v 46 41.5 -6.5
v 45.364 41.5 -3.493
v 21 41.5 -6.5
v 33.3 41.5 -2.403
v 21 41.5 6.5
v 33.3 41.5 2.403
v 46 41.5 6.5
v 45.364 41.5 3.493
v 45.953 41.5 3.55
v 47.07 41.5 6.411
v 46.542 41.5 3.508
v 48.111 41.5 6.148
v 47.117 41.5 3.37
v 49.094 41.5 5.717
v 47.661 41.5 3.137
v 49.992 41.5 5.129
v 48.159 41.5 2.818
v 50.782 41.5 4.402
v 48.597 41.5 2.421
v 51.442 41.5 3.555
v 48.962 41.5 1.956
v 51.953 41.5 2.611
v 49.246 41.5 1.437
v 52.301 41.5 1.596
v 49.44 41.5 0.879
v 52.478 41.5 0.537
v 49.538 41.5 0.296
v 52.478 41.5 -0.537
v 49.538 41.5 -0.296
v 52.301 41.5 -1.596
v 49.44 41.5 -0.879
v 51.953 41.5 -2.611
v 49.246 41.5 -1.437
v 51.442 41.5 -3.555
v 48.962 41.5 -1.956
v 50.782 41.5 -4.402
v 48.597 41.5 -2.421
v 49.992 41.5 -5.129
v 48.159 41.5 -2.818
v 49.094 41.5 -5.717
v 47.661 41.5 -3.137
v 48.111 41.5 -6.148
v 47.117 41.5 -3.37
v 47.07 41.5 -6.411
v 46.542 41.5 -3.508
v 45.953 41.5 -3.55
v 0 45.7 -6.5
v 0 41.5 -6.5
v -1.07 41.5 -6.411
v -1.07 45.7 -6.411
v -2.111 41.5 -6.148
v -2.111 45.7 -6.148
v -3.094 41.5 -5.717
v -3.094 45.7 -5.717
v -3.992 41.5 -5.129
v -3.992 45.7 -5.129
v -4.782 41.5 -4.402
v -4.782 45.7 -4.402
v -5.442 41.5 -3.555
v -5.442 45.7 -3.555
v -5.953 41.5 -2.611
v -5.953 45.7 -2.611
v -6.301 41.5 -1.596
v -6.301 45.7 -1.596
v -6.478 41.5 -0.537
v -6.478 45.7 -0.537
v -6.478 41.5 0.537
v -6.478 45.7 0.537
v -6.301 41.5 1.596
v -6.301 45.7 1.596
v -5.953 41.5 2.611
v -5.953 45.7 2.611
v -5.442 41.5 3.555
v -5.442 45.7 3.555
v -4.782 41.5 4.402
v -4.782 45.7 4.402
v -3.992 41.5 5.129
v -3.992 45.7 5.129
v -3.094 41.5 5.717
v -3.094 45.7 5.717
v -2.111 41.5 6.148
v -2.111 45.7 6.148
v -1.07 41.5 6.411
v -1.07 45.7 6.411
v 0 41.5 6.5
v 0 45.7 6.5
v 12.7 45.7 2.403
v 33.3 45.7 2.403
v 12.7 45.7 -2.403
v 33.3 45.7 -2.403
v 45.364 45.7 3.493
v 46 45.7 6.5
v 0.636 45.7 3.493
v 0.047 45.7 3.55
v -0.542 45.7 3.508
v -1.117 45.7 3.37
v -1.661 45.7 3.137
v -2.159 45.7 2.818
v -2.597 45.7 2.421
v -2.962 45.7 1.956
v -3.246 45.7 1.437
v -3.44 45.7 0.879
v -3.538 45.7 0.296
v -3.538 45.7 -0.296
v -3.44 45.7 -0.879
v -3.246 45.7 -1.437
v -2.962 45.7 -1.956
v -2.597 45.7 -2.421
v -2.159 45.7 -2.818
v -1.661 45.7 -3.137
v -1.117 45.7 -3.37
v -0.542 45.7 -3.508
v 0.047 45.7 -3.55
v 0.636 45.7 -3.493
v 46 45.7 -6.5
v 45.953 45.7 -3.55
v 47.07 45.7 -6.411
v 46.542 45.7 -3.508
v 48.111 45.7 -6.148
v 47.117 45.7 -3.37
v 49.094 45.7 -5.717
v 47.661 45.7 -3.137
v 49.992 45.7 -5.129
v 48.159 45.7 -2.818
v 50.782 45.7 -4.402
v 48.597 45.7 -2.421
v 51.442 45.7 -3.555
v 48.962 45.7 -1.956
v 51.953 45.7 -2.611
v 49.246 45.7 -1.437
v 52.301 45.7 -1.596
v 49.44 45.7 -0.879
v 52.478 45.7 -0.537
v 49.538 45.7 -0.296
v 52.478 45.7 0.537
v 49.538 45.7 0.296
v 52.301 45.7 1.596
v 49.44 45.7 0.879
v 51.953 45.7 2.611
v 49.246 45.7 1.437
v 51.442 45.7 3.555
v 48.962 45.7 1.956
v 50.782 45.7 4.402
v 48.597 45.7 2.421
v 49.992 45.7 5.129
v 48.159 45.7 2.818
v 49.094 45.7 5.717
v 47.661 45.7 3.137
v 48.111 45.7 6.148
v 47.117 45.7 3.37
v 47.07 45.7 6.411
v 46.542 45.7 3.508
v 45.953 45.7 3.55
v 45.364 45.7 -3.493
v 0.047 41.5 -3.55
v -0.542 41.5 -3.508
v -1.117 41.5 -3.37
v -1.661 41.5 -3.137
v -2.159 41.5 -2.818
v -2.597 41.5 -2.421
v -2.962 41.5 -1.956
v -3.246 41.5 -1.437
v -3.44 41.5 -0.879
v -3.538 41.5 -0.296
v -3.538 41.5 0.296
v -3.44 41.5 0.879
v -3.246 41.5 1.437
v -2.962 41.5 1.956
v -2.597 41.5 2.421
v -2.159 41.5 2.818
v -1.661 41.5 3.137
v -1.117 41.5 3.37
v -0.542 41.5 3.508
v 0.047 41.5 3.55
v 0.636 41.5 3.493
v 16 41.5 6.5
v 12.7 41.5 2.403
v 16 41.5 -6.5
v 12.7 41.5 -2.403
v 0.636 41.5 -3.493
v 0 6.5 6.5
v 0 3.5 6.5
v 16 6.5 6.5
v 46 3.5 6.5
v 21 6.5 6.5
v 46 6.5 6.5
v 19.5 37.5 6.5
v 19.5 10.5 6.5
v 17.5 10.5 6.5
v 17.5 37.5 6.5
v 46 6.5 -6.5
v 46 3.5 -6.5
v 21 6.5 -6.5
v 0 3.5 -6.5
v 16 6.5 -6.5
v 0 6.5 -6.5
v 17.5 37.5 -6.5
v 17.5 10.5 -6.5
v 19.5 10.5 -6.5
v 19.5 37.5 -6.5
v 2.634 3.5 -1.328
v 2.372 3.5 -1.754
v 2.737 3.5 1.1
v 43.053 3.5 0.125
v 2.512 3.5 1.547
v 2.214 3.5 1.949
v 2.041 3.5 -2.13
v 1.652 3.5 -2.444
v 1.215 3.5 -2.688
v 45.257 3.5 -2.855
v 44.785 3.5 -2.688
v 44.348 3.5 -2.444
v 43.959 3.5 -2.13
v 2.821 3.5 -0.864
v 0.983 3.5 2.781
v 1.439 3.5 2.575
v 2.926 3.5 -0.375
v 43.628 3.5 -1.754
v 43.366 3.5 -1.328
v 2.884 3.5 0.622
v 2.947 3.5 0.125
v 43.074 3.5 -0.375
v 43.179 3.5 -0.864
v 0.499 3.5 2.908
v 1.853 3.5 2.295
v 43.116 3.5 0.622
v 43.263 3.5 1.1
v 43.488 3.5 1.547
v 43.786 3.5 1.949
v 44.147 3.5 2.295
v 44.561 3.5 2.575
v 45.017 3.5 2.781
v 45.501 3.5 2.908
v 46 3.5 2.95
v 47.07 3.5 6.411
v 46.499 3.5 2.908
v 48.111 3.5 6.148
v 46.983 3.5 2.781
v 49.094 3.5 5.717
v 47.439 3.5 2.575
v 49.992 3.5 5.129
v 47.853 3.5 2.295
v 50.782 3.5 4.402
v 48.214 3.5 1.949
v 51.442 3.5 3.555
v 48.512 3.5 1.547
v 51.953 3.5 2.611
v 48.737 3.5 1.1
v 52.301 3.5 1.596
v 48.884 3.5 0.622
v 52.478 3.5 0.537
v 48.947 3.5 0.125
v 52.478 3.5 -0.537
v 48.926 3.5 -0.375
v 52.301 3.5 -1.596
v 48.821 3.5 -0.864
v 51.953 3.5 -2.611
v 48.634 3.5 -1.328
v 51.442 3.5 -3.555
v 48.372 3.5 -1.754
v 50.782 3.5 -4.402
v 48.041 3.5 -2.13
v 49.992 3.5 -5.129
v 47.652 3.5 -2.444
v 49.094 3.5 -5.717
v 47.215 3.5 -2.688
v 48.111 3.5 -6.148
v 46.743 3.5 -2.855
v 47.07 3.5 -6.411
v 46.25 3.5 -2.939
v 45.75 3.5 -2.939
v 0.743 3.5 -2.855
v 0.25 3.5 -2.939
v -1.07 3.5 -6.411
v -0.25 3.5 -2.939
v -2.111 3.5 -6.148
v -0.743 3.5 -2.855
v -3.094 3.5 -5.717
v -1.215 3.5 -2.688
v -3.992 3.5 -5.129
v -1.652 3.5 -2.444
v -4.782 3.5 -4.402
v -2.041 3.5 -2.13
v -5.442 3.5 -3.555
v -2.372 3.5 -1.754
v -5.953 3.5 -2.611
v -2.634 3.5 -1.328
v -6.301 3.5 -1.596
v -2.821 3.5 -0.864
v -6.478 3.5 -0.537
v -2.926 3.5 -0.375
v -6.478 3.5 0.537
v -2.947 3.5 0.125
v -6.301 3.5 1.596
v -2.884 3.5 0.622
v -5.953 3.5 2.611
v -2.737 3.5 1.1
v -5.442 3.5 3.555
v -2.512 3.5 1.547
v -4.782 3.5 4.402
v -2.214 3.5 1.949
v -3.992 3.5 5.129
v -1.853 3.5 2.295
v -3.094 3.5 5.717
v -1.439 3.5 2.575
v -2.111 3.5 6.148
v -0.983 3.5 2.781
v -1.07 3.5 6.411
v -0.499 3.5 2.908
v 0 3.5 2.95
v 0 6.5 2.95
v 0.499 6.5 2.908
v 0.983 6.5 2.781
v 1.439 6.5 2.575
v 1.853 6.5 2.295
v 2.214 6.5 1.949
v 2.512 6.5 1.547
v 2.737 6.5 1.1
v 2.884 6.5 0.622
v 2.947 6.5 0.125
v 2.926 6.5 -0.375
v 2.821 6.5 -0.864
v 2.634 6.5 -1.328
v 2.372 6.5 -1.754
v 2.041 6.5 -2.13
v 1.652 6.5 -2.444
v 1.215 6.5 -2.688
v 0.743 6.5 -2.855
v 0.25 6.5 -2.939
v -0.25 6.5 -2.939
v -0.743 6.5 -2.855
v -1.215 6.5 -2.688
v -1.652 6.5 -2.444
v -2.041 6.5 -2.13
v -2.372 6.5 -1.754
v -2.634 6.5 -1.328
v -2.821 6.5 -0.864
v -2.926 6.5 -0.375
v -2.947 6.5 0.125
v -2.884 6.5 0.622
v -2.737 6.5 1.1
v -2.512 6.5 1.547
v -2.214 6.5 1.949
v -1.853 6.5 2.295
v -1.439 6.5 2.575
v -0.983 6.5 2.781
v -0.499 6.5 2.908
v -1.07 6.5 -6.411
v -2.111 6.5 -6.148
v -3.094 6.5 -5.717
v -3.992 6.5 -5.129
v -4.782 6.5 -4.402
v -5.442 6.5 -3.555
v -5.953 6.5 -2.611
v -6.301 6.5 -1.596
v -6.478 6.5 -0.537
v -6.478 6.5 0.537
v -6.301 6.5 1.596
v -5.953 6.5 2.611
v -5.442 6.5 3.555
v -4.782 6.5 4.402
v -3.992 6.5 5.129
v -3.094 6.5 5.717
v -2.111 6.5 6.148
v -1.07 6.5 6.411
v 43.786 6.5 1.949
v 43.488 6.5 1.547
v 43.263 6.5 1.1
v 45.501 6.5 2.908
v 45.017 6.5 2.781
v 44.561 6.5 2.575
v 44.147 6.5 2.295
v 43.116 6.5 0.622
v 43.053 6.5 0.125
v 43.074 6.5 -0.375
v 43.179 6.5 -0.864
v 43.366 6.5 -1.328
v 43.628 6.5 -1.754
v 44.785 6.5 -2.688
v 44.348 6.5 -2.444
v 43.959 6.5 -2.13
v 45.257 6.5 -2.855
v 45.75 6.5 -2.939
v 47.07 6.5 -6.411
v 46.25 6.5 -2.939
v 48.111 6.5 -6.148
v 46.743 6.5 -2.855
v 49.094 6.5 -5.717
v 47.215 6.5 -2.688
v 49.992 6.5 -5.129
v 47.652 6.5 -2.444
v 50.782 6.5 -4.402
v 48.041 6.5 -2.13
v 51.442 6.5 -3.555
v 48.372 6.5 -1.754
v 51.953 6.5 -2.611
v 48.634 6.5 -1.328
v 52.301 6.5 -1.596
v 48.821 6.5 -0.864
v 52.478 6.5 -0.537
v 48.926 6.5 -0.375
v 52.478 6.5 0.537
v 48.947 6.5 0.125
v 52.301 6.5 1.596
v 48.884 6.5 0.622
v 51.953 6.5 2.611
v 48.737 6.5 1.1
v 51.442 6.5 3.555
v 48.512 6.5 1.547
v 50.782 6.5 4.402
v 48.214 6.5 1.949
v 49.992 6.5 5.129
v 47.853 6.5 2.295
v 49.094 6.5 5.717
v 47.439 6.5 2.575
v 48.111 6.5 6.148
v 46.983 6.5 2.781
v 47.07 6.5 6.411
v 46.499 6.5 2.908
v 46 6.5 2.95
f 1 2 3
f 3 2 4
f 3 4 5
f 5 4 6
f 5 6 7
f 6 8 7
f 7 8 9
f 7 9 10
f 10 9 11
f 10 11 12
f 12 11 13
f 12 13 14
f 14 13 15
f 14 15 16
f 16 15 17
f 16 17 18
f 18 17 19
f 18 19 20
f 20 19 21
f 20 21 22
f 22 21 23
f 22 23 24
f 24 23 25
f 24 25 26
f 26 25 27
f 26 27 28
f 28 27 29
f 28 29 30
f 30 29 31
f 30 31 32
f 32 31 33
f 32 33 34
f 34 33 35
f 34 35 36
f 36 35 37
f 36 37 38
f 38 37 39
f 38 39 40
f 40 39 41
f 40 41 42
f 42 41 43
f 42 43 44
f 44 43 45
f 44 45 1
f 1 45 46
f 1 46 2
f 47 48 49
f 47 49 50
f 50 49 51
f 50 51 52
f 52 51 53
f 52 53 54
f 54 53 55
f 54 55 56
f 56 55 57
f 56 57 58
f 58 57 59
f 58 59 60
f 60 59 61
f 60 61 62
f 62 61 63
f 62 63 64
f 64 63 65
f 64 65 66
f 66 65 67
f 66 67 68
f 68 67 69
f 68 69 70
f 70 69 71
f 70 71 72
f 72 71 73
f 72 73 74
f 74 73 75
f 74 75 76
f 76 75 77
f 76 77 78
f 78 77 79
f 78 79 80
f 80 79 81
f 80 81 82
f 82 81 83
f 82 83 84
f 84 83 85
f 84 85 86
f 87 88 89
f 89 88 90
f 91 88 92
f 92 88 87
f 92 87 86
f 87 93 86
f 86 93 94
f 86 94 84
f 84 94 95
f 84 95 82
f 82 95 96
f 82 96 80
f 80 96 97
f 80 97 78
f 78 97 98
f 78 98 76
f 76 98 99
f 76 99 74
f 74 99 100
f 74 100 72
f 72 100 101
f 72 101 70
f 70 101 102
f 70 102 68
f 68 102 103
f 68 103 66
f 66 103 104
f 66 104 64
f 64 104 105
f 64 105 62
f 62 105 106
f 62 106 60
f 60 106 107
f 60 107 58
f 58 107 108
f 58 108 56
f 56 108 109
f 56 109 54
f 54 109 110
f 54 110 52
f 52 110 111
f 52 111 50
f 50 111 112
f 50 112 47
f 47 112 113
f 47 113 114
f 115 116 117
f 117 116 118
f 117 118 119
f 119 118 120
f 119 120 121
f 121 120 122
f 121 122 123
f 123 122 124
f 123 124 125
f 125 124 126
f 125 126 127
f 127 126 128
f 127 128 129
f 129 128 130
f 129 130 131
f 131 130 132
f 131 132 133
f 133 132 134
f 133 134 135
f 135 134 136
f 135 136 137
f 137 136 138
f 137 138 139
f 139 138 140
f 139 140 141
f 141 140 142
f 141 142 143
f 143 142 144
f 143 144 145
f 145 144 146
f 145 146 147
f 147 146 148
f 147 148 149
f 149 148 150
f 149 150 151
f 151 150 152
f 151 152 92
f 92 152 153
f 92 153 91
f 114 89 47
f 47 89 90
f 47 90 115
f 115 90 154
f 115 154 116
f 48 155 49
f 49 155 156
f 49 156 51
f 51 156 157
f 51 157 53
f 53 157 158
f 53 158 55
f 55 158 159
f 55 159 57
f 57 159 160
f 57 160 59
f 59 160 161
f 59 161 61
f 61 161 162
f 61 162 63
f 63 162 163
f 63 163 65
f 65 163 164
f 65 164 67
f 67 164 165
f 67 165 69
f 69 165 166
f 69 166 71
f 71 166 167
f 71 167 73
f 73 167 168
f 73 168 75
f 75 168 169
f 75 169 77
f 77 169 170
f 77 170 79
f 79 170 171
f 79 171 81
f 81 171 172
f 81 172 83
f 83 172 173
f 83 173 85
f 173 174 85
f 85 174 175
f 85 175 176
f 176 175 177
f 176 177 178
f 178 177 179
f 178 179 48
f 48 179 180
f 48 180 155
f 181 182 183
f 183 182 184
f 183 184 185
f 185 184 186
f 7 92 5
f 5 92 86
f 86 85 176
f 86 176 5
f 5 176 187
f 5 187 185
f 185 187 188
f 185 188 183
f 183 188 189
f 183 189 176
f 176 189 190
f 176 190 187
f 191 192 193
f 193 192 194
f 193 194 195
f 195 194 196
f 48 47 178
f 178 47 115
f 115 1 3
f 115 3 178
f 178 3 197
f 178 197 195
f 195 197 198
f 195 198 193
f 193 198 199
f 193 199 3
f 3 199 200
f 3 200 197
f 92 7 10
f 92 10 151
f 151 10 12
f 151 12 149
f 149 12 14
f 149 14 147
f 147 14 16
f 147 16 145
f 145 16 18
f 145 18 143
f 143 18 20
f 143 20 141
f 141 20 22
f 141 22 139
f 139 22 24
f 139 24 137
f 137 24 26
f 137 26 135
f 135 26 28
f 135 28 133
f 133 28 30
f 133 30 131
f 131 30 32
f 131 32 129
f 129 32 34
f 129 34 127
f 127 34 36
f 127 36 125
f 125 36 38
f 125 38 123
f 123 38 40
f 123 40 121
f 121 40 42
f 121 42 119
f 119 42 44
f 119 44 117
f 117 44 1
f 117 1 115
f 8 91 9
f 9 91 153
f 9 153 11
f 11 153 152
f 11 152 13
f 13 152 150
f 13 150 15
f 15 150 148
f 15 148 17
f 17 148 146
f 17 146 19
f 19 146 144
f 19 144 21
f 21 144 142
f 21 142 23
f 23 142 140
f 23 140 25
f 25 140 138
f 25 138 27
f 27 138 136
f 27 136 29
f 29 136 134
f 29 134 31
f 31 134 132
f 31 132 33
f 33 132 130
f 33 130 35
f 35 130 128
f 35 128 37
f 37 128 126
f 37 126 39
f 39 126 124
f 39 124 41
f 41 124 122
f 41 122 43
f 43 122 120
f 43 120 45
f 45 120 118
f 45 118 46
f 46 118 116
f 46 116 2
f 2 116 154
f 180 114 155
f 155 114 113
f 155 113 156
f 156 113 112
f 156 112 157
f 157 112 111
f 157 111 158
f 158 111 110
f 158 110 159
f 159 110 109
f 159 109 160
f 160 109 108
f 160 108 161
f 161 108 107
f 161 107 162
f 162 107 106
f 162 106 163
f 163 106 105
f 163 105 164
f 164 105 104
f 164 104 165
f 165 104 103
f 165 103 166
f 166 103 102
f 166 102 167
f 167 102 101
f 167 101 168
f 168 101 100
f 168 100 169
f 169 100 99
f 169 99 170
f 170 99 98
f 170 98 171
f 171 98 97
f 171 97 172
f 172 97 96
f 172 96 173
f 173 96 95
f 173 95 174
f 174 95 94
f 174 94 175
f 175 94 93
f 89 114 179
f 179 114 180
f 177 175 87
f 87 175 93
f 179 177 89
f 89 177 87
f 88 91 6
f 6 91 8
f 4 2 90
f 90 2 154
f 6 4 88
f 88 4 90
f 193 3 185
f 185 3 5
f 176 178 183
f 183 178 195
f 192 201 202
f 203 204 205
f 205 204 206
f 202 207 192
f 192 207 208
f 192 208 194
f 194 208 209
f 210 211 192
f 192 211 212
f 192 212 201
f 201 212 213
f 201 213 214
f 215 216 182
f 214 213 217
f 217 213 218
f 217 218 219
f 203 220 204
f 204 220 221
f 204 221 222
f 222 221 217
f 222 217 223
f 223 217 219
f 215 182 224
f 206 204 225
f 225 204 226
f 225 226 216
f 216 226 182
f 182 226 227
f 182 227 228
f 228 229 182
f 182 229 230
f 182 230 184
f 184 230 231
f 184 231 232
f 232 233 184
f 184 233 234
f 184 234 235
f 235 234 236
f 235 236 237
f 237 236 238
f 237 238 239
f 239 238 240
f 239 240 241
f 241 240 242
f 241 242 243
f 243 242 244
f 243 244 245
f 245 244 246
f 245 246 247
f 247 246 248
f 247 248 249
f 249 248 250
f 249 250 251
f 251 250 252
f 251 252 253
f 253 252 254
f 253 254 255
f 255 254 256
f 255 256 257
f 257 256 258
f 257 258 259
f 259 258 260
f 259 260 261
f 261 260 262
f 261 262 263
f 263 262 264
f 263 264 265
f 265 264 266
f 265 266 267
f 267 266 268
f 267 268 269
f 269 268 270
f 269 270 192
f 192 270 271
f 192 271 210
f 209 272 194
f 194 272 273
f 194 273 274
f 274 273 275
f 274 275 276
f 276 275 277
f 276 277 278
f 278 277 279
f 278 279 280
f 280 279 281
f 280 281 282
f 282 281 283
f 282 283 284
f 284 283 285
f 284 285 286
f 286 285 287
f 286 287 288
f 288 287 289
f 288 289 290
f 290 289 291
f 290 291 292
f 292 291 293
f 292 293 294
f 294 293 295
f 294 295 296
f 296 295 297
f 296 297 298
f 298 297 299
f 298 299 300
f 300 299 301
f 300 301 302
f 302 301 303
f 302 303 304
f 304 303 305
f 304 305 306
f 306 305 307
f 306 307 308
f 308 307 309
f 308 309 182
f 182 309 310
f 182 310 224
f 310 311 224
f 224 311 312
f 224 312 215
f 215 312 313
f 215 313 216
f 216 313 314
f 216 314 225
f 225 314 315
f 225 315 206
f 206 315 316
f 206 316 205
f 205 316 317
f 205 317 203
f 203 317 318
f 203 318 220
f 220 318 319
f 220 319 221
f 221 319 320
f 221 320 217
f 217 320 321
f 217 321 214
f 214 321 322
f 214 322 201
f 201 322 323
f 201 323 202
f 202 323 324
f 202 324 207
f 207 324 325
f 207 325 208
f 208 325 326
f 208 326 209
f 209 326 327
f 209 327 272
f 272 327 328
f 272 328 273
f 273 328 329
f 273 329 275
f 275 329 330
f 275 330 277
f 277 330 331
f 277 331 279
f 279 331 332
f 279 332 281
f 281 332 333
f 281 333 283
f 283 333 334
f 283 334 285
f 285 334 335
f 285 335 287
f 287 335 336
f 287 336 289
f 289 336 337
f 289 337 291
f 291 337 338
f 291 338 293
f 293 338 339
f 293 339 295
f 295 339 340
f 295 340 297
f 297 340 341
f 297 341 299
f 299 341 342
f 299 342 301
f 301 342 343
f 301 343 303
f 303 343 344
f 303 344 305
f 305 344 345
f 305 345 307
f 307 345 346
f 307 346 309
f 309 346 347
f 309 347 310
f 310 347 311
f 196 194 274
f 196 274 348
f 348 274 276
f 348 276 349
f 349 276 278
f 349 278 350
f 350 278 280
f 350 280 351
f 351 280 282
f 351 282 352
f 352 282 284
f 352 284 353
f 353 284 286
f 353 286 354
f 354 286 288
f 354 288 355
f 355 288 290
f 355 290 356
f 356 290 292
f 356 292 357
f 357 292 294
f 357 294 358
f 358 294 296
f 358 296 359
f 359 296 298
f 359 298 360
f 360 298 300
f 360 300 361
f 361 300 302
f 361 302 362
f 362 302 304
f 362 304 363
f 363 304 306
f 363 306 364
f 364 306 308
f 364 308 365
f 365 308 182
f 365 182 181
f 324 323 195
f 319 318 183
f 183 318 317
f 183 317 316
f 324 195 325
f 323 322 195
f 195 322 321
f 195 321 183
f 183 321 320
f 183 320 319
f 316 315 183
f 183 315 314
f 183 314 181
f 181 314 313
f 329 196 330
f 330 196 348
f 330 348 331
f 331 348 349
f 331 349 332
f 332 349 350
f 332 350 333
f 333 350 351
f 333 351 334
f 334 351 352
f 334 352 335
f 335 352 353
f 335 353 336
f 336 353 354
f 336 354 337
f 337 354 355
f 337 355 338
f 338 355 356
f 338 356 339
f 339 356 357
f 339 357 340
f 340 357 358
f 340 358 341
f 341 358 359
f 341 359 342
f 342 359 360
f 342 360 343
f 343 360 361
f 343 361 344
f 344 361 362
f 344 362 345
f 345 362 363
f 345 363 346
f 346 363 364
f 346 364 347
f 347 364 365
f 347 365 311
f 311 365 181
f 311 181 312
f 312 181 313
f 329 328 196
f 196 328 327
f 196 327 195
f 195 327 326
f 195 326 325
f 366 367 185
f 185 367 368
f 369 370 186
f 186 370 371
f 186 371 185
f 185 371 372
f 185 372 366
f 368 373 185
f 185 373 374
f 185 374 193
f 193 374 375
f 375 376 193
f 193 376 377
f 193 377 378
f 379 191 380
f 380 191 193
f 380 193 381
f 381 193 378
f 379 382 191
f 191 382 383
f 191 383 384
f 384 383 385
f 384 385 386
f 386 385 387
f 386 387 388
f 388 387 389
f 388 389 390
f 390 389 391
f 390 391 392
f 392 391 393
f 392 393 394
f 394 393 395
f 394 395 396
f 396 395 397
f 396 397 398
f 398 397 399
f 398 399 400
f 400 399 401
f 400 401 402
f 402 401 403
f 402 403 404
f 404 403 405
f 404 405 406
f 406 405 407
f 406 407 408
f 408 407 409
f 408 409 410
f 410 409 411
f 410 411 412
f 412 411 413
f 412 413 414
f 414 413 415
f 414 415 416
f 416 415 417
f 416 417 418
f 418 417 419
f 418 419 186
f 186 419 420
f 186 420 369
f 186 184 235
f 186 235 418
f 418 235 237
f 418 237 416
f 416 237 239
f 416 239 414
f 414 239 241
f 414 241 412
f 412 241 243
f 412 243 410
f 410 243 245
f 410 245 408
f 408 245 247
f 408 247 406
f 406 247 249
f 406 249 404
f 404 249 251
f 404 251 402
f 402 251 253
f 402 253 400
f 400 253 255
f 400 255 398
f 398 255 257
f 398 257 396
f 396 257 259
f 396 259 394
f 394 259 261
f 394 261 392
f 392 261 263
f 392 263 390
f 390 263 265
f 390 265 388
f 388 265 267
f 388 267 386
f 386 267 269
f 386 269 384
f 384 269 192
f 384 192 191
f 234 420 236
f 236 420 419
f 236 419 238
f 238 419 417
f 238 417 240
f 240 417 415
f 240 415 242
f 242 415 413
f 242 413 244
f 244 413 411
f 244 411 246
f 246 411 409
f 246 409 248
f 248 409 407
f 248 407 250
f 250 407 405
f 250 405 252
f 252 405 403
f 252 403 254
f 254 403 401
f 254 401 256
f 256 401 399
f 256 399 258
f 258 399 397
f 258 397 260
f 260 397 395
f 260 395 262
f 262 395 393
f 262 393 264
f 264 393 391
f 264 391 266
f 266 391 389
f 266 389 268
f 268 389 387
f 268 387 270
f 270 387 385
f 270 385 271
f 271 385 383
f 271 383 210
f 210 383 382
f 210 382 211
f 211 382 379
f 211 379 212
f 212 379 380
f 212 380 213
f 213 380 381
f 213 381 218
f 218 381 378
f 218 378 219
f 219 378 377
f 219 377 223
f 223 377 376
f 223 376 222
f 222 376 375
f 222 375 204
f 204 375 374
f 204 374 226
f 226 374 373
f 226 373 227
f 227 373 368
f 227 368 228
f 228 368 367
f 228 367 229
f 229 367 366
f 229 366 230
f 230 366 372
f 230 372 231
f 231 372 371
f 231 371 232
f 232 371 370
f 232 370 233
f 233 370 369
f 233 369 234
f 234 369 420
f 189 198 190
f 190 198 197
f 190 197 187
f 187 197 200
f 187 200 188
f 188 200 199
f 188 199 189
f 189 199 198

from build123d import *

# Parameters (mm, degrees)
BOSS_EXTRUDE1_START   = 43.6
SKETCH1_R             = 6.5
BOSS_EXTRUDE1_DEPTH   = 2.1
BOSS_EXTRUDE1_2_DEPTH = 2.1
BOSS_EXTRUDE2_START   = 43.6
SKETCH2_W             = 46
SKETCH2_H             = 13
BOSS_EXTRUDE2_DEPTH   = 2.1
CUT_EXTRUDE1_START    = 43.6
SKETCH3_R             = 3.55
CUT_EXTRUDE1_DEPTH    = 2.1
CUT_EXTRUDE2_START    = 43.6
CUT_EXTRUDE2_DEPTH    = 2.1
BOSS_EXTRUDE3_START   = 5
SKETCH5_R             = 6.5
BOSS_EXTRUDE3_DEPTH   = 1.5
BOSS_EXTRUDE3_2_DEPTH = 1.5
BOSS_EXTRUDE4_START   = 5
SKETCH6_W             = 46
SKETCH6_H             = 13
BOSS_EXTRUDE4_DEPTH   = 1.5
CUT_EXTRUDE3_START    = 5
SKETCH7_R             = 2.95
CUT_EXTRUDE3_DEPTH    = 1.5
BOSS_EXTRUDE5_START   = 18.5
SKETCH8_W             = 13
SKETCH8_H             = 42.2
BOSS_EXTRUDE5_DEPTH   = 2.5
CUT_EXTRUDE4_START    = -0.01
SKETCH9_W             = 2
SKETCH9_H             = 27
CUT_EXTRUDE4_DEPTH    = 6.51


with BuildPart() as part:
    # Sketch1 → Boss-Extrude1 (new, symmetric)
    with BuildSketch(Plane(origin=(0, 0, 0), x_dir=(1, 0, 0), z_dir=(0, 1, 0)).offset(BOSS_EXTRUDE1_START)):
        with Locations(Location((0, 0, 0), (0, 0, 270))):
            Circle(SKETCH1_R)
    extrude(amount=BOSS_EXTRUDE1_DEPTH, both=True)



with BuildPart() as body_2:
    # Sketch1 → Boss-Extrude1 2 (new, symmetric)
    with BuildSketch(Plane(origin=(0, 0, 0), x_dir=(1, 0, 0), z_dir=(0, 1, 0)).offset(BOSS_EXTRUDE1_START)):
        with Locations(Location((46, 0, 0), (0, 0, 270))):
            Circle(SKETCH1_R)
    extrude(amount=BOSS_EXTRUDE1_2_DEPTH, both=True)


with BuildPart() as part_1:
    add(part.part)

    add(body_2.part)  # Boss-Extrude2 merges body 2
    # Sketch2 → Boss-Extrude2 (add, symmetric)
    with BuildSketch(Plane(origin=(0, 0, 0), x_dir=(1, 0, 0), z_dir=(0, 1, 0)).offset(BOSS_EXTRUDE2_START)):
        with Locations((23, 0)):
            Rectangle(SKETCH2_W, SKETCH2_H)
    extrude(amount=BOSS_EXTRUDE2_DEPTH, both=True)

    # Sketch3 → Cut-Extrude1 (cut, symmetric)
    with BuildSketch(Plane(origin=(0, 0, 0), x_dir=(1, 0, 0), z_dir=(0, 1, 0)).offset(CUT_EXTRUDE1_START)):
        with Locations(Location((0, 0, 0), (0, 0, 270))):
            Circle(SKETCH3_R)
        with Locations(Location((46, 0, 0), (0, 0, 270))):
            Circle(SKETCH3_R)
    extrude(amount=CUT_EXTRUDE1_DEPTH, both=True, mode=Mode.SUBTRACT)

    # Sketch4 → Cut-Extrude2 (cut, symmetric)
    with BuildSketch(Plane(origin=(0, 0, 0), x_dir=(1, 0, 0), z_dir=(0, 1, 0)).offset(CUT_EXTRUDE2_START)):
        Polygon((0, -3.55), (12.7, -2.403281405), (12.7, 2.403281405), (0, 3.55), align=None)
        Polygon((46, 3.55), (33.3, 2.403281405), (33.3, -2.403281405), (46, -3.55), align=None)
    extrude(amount=CUT_EXTRUDE2_DEPTH, both=True, mode=Mode.SUBTRACT)



with BuildPart() as body_2_2:
    # Sketch5 → Boss-Extrude3 (new, symmetric)
    with BuildSketch(Plane(origin=(0, 0, 0), x_dir=(1, 0, 0), z_dir=(0, 1, 0)).offset(BOSS_EXTRUDE3_START)):
        with Locations(Location((0, 0, 0), (0, 0, 270))):
            Circle(SKETCH5_R)
    extrude(amount=BOSS_EXTRUDE3_DEPTH, both=True)



with BuildPart() as body_3:
    # Sketch5 → Boss-Extrude3 2 (new, symmetric)
    with BuildSketch(Plane(origin=(0, 0, 0), x_dir=(1, 0, 0), z_dir=(0, 1, 0)).offset(BOSS_EXTRUDE3_START)):
        with Locations(Location((46, 0, 0), (0, 0, 270))):
            Circle(SKETCH5_R)
    extrude(amount=BOSS_EXTRUDE3_2_DEPTH, both=True)


with BuildPart() as body_2_2_1:
    add(body_2_2.part)

    add(body_3.part)  # Boss-Extrude4 merges body 3
    # Sketch6 → Boss-Extrude4 (add, symmetric)
    with BuildSketch(Plane(origin=(0, 0, 0), x_dir=(1, 0, 0), z_dir=(0, 1, 0)).offset(BOSS_EXTRUDE4_START)):
        with Locations((23, 0)):
            Rectangle(SKETCH6_W, SKETCH6_H)
    extrude(amount=BOSS_EXTRUDE4_DEPTH, both=True)

    # Sketch7 → Cut-Extrude3 (cut, symmetric)
    with BuildSketch(Plane(origin=(0, 0, 0), x_dir=(1, 0, 0), z_dir=(0, 1, 0)).offset(CUT_EXTRUDE3_START)):
        with Locations(Location((0, 0, 0), (0, 0, 270))):
            Circle(SKETCH7_R)
        with Locations(Location((46, 0, 0), (0, 0, 270))):
            Circle(SKETCH7_R)
    extrude(amount=CUT_EXTRUDE3_DEPTH, both=True, mode=Mode.SUBTRACT)


with BuildPart() as part_2:
    add(part_1.part)

    add(body_2_2_1.part)  # Boss-Extrude5 merges body 2 2
    # Sketch8 → Boss-Extrude5 (add, symmetric)
    with BuildSketch(Plane(origin=(0, 0, 0), x_dir=(0, 0, -1), z_dir=(1, 0, 0)).offset(BOSS_EXTRUDE5_START)):
        with Locations((0, 24.6)):
            Rectangle(SKETCH8_W, SKETCH8_H)
    extrude(amount=BOSS_EXTRUDE5_DEPTH, both=True)

    # Sketch9 → Cut-Extrude4 (cut, symmetric)
    with BuildSketch(Plane.XY.offset(CUT_EXTRUDE4_START)):
        with Locations((18.5, 24)):
            Rectangle(SKETCH9_W, SKETCH9_H)
    extrude(amount=CUT_EXTRUDE4_DEPTH, both=True, mode=Mode.SUBTRACT)


solid = part_2.part
